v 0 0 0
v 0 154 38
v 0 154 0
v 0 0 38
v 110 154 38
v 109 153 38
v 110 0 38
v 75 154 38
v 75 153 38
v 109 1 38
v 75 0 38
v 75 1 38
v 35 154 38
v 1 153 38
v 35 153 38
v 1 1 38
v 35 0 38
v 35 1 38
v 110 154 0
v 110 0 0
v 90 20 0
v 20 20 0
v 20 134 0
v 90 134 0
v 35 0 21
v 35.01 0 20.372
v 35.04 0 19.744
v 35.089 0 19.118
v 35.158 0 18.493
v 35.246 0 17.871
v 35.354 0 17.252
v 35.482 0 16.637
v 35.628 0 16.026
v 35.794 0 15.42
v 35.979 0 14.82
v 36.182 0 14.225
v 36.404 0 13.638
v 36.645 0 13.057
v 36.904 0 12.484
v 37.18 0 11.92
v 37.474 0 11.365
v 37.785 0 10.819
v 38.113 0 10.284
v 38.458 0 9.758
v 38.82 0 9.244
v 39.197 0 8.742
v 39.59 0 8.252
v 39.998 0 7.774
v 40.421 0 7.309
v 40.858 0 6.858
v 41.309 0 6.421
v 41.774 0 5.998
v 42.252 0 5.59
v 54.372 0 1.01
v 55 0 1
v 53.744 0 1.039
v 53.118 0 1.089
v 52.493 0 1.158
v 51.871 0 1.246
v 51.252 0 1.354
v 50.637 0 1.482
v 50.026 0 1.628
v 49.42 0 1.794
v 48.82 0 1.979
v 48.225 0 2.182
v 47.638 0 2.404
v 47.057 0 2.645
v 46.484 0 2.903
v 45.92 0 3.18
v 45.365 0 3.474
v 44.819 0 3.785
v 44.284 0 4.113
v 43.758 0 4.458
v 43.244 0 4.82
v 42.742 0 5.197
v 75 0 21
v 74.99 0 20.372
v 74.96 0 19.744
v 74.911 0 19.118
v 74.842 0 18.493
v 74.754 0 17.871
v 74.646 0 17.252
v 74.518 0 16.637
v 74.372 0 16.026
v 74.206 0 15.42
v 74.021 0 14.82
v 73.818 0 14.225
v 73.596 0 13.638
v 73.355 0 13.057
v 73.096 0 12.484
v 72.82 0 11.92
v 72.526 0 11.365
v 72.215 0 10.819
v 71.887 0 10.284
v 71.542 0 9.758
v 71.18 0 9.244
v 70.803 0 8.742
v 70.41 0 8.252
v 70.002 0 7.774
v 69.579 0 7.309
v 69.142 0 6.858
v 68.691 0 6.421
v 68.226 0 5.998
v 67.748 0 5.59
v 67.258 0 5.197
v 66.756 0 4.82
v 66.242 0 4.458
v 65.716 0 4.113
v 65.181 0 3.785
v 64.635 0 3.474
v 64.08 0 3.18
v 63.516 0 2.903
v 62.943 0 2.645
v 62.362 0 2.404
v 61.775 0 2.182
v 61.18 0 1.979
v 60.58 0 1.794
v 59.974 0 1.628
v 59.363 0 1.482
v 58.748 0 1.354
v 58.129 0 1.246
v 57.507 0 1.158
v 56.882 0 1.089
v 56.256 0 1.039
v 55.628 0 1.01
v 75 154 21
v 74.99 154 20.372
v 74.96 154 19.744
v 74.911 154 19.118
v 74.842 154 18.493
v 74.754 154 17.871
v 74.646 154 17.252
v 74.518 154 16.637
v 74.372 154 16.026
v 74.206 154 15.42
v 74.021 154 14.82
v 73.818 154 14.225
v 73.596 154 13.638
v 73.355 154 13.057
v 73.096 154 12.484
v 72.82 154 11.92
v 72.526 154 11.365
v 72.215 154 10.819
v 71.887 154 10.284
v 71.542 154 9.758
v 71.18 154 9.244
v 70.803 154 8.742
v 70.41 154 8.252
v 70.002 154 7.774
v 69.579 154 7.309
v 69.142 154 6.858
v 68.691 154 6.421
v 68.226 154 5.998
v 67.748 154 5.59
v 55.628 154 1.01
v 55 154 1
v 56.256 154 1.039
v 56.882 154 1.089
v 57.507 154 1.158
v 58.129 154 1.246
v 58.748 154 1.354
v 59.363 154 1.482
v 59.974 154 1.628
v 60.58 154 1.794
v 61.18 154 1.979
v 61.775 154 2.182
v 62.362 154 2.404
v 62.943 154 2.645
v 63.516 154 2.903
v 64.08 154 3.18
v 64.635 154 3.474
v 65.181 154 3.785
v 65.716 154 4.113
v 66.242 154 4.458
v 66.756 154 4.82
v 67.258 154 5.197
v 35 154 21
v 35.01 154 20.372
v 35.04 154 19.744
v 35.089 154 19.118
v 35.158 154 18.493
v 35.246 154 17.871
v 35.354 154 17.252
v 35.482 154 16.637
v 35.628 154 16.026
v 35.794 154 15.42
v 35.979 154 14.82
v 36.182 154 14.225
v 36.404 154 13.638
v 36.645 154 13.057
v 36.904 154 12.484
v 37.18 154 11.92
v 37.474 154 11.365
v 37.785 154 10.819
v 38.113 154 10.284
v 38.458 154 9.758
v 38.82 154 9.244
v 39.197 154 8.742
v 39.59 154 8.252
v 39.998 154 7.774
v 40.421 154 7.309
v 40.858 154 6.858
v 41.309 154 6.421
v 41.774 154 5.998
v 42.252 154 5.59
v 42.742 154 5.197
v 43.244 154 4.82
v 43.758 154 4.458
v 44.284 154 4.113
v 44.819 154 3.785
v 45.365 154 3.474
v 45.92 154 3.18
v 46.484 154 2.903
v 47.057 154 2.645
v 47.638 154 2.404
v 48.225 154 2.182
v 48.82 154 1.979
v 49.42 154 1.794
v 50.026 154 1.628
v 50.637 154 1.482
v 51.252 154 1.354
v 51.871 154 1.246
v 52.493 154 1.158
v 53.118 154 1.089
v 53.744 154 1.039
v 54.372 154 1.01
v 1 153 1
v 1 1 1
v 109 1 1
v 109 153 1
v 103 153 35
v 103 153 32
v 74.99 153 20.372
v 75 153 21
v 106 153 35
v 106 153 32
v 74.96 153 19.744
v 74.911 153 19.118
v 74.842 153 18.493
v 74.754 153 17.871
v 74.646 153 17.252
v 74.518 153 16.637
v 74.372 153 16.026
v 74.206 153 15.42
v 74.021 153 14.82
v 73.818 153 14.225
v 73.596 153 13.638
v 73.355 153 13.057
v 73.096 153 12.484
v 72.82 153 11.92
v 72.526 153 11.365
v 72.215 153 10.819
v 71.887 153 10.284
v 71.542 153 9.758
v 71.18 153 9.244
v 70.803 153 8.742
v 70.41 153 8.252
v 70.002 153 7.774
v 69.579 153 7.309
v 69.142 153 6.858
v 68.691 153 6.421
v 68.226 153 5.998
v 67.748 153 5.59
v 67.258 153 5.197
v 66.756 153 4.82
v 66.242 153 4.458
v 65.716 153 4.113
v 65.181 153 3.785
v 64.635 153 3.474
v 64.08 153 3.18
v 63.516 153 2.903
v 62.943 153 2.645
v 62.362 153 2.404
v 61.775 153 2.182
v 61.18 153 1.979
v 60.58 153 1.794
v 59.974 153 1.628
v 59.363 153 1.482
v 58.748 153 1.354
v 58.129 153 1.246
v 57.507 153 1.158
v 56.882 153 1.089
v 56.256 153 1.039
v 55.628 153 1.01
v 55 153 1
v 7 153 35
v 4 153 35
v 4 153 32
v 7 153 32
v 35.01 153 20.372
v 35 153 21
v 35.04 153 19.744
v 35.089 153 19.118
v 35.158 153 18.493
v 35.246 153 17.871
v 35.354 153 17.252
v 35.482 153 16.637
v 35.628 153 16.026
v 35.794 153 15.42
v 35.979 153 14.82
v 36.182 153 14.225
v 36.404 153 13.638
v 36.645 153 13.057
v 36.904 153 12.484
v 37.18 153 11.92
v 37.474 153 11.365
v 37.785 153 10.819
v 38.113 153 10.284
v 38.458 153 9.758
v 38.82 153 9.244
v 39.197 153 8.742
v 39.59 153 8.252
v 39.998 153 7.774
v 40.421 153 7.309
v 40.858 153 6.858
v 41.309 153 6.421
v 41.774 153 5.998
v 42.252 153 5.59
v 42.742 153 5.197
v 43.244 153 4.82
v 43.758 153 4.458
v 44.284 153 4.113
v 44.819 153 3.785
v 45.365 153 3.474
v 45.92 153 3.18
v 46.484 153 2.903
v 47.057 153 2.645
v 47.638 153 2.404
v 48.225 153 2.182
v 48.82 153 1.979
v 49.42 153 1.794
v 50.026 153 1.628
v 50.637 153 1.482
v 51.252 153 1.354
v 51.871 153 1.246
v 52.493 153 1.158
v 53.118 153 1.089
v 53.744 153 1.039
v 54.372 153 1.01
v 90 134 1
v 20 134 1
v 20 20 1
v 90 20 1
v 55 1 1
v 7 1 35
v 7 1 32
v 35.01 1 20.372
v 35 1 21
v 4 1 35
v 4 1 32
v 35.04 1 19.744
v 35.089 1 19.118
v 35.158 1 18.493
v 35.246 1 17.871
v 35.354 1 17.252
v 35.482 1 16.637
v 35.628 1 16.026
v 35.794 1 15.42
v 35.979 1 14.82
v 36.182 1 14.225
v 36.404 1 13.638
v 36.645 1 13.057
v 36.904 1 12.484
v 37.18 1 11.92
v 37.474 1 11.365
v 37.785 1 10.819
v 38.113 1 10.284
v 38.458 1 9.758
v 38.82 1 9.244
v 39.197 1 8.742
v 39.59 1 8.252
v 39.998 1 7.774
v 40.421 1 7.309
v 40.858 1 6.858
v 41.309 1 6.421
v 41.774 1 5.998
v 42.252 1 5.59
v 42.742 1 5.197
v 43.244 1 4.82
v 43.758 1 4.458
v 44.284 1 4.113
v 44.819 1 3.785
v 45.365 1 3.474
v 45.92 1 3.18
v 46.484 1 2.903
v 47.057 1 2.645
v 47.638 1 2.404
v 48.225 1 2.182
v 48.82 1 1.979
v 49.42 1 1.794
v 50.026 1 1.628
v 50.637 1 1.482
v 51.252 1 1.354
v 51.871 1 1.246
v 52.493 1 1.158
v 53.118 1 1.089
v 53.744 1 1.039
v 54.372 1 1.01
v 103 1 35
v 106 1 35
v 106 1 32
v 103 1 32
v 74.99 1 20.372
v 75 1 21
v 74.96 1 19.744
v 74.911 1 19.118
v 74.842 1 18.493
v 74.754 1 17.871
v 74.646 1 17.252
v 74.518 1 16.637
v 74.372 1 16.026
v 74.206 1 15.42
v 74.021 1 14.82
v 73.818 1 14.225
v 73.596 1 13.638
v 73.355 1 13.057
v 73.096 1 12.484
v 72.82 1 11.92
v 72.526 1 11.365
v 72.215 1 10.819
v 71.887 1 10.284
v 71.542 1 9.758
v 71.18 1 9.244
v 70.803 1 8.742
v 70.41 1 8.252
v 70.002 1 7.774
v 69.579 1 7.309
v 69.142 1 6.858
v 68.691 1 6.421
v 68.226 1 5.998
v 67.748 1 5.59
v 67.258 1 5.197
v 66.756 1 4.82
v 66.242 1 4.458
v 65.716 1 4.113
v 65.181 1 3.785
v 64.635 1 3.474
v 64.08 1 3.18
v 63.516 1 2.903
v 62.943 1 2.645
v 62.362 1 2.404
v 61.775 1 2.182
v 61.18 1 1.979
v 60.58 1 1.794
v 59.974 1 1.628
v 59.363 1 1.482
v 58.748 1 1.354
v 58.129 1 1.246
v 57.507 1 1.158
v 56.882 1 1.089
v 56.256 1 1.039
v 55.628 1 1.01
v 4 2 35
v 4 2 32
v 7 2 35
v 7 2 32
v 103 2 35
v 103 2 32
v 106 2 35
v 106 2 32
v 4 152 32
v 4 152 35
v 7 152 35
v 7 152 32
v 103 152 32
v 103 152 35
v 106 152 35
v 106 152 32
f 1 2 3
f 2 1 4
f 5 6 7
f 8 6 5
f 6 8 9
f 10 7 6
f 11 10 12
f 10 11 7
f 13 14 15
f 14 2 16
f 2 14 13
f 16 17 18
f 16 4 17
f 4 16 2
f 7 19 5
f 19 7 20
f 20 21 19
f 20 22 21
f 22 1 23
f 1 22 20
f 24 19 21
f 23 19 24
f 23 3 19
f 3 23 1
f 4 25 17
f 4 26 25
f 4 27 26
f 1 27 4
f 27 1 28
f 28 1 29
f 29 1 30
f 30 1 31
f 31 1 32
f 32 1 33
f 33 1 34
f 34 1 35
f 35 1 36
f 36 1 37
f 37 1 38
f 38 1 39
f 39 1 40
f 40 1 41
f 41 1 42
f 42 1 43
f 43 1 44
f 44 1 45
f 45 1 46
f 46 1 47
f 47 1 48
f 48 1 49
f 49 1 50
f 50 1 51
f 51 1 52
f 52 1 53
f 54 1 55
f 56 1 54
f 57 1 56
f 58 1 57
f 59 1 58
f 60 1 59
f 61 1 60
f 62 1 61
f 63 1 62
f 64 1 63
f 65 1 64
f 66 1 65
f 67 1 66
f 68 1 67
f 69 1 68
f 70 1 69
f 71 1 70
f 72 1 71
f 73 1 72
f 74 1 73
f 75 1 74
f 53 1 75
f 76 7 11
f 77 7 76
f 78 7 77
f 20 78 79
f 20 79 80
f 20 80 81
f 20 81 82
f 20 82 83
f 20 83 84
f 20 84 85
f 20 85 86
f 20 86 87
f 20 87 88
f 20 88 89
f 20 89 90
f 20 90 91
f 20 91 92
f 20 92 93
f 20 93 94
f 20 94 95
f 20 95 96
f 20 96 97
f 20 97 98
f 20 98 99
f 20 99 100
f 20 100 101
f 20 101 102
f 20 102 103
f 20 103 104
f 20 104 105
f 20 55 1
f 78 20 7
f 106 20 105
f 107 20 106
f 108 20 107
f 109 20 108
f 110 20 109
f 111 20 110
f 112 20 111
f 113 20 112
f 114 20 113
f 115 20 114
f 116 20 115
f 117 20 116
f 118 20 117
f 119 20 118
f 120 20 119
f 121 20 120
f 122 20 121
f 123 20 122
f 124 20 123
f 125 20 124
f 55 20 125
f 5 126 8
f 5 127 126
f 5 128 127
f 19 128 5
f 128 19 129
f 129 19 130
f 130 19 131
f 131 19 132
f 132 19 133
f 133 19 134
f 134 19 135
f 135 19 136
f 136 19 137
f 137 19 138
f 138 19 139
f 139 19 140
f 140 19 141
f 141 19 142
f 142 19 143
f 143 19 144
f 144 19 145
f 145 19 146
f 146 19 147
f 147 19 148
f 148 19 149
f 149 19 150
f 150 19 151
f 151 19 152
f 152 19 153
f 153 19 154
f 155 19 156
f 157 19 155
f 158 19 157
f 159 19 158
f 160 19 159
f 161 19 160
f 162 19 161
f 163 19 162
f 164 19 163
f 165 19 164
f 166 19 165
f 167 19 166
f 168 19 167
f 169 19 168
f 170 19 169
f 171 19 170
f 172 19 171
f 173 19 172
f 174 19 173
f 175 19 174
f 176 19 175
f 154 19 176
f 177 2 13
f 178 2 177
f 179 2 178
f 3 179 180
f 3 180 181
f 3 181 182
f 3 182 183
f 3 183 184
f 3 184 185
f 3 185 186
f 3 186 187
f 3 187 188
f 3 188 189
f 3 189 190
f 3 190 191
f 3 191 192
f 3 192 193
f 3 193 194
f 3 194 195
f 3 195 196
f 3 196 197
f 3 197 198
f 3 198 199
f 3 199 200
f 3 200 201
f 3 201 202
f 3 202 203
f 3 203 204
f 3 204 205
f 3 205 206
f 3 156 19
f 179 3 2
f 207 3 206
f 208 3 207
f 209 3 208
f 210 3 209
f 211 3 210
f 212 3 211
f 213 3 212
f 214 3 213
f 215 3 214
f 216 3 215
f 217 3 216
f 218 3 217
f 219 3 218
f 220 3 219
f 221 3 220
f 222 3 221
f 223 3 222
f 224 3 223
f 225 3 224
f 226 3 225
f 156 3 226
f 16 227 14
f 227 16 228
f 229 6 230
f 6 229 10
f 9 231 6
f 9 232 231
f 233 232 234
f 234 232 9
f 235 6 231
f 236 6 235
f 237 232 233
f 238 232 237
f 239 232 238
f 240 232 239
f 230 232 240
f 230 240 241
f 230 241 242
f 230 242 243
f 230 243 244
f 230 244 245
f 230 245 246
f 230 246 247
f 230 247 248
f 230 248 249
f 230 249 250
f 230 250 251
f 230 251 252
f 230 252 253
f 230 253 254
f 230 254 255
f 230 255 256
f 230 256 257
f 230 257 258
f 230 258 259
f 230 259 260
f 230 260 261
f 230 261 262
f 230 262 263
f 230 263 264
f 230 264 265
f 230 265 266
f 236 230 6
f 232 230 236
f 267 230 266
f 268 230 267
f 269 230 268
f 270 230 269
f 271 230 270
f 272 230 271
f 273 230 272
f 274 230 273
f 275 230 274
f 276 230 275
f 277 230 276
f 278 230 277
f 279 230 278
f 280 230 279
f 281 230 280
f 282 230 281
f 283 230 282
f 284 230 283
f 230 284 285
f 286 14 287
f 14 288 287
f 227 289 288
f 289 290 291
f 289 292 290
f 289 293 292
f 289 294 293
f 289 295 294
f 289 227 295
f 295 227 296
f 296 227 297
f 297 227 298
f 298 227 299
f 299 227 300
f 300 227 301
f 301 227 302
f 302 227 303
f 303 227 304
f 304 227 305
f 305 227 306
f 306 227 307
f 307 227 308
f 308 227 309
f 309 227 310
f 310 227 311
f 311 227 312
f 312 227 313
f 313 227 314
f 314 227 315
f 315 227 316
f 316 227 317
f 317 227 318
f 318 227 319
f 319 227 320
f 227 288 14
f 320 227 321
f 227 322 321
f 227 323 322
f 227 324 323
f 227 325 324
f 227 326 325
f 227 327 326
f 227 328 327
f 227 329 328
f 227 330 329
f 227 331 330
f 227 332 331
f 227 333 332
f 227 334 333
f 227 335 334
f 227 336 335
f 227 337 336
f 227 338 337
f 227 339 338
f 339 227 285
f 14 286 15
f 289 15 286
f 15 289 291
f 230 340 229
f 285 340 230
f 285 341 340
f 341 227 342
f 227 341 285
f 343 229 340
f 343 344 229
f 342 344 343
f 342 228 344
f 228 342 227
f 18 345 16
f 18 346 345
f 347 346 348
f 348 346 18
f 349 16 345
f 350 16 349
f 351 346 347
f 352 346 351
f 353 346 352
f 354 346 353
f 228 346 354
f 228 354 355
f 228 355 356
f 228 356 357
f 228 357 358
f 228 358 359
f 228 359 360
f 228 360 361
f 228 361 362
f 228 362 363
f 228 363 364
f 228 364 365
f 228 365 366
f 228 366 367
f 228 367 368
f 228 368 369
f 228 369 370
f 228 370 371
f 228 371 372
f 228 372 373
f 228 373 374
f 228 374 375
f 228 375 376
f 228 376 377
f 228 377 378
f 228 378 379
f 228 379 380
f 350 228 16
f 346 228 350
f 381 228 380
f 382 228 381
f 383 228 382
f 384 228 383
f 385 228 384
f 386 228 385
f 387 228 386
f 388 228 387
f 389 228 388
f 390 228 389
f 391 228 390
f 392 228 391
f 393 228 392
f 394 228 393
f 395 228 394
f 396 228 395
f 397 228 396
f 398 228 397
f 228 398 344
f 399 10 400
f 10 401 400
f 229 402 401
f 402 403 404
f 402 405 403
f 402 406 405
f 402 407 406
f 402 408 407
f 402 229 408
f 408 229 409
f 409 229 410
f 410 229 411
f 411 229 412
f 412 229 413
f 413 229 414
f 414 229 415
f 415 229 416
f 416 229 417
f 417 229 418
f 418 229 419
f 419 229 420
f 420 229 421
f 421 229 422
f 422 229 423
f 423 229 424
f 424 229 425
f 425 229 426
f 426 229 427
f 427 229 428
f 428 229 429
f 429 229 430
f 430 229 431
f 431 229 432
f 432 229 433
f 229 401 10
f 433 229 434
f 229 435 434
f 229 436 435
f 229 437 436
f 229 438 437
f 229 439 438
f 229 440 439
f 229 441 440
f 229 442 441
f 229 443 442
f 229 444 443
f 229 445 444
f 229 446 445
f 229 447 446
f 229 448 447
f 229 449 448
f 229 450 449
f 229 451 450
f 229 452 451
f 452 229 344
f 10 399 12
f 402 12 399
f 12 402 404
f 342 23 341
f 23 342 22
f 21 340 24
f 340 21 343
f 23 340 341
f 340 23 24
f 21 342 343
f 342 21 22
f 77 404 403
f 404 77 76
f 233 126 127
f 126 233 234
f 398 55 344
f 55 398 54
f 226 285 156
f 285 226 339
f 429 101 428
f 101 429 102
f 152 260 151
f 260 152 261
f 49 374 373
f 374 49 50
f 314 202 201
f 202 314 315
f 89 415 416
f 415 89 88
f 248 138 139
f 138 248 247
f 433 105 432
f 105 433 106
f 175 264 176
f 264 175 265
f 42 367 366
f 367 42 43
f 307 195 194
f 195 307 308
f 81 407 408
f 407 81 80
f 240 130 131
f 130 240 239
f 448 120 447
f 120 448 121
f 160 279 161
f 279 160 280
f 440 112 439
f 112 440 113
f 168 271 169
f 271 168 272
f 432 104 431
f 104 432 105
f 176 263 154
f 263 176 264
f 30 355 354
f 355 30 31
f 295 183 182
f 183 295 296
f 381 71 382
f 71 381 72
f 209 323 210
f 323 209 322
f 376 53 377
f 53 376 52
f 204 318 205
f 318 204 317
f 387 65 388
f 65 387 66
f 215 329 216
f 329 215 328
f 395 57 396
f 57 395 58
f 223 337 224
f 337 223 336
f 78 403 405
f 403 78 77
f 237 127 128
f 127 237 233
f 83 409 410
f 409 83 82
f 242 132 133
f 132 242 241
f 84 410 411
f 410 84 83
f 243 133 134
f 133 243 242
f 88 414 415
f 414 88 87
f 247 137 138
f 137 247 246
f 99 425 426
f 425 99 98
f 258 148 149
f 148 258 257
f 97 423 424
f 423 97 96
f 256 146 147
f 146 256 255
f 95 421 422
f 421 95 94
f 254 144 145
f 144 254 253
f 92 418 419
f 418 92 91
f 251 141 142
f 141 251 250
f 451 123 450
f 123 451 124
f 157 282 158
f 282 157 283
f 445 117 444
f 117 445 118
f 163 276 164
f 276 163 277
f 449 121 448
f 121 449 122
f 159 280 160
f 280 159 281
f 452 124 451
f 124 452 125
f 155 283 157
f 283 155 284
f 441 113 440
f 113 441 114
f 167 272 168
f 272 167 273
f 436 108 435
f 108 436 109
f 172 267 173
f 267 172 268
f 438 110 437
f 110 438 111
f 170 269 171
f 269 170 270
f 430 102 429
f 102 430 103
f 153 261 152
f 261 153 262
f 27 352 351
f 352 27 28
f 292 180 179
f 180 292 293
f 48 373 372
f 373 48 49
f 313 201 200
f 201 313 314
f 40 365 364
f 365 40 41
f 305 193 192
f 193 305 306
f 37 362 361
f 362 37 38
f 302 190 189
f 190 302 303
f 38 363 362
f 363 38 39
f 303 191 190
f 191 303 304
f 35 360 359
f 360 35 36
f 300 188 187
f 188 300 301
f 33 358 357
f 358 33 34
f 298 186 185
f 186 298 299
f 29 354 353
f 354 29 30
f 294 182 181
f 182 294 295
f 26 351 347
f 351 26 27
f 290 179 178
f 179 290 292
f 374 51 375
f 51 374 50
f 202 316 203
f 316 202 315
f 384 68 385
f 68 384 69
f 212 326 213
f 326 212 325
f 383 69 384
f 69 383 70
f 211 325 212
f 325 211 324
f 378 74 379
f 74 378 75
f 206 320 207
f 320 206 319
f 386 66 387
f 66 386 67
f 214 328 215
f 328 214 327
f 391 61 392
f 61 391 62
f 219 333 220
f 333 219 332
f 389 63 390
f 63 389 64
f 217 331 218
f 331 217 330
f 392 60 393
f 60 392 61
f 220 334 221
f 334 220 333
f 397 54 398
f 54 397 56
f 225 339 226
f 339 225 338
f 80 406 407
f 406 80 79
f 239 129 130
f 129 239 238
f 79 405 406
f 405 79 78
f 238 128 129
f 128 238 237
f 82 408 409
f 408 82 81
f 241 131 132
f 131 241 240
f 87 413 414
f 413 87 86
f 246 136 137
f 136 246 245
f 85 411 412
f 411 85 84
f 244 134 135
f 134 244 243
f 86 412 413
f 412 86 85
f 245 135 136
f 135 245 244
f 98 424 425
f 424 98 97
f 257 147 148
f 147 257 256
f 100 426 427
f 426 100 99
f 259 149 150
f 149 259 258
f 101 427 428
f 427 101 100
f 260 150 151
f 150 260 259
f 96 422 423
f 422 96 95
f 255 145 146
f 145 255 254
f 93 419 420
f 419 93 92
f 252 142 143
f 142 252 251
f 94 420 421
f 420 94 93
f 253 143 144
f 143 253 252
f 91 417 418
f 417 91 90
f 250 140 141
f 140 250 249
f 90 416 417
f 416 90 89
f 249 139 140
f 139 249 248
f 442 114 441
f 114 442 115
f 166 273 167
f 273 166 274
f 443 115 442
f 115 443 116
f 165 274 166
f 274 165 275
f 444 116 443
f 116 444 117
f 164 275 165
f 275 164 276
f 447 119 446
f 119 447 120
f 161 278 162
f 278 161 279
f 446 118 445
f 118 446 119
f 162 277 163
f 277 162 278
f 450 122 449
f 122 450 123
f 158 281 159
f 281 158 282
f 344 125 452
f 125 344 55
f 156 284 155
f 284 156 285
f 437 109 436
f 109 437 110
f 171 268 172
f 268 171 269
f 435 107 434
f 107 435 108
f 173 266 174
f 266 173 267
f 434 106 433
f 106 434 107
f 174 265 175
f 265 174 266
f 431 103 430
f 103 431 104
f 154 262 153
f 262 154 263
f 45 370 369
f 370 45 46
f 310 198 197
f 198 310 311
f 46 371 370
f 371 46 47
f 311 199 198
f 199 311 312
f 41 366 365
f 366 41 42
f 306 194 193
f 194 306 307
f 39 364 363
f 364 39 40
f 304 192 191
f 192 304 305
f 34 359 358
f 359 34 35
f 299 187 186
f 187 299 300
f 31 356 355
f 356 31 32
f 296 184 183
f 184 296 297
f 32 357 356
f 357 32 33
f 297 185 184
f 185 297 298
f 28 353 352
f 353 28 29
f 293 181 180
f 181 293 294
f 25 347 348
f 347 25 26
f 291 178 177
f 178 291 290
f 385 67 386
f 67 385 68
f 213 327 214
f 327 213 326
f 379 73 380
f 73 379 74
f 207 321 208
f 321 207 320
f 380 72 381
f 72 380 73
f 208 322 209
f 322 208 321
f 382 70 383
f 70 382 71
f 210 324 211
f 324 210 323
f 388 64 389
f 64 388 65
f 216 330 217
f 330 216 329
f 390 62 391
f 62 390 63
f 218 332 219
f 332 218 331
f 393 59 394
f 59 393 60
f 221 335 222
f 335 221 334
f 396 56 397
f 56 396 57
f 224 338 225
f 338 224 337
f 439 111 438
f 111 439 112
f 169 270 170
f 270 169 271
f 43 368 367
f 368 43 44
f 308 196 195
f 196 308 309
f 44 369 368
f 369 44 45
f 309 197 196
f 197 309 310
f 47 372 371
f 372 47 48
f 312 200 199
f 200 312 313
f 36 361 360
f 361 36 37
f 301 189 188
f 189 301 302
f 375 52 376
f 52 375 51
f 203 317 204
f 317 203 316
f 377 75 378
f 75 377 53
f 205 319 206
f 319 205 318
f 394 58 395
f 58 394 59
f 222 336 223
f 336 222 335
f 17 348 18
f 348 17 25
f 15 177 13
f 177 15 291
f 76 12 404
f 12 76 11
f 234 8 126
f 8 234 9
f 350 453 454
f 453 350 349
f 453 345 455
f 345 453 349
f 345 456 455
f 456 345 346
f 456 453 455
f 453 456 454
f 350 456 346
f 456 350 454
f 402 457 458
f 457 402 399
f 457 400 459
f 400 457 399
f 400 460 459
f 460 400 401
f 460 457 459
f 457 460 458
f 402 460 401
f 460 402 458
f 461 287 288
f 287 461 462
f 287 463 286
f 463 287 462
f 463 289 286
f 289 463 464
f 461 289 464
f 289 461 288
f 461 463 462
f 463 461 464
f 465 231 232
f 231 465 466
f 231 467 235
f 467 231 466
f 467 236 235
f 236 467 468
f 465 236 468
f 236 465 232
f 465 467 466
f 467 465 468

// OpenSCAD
$fn=200;

THICK = 1;

LARGE_CARD_L = 147;
LARGE_CARD_W = 103;
LARGE_CARD_STACK = 15;

SMALL_CARD_L = 68;
SMALL_CARD_W = 45;
SMALL_CARD_STACK = 25;

STUMP = 2;

BOX_W = LARGE_CARD_W + (THICK * 2) + 5;
BOX_L = LARGE_CARD_L + (THICK * 2) + 5;
BOX_H = LARGE_CARD_STACK + SMALL_CARD_STACK + THICK + STUMP - 5;

SMALL_X = (BOX_W / 2) - (SMALL_CARD_L / 2);

// cube(size = [
//     BOX_W + (THICK * 4),
//     BOX_L + (THICK * 4), 
//     THICK]);

MARGIN = 20;

difference() {
    cube(size = [
        BOX_W,
        BOX_L, 
        BOX_H]);

    translate([
        THICK, 
        THICK, 
        THICK]) {
            
        cube(size = [
            BOX_W - (THICK * 2),
            BOX_L - (THICK * 2),
            BOX_H]);
    }

    translate([
        MARGIN,
        MARGIN,
        -1]) {

        cube(size = [
            BOX_W - (MARGIN * 2),
            BOX_L - (MARGIN * 2),
            10]);
    }

    translate([
        (BOX_W / 2),
        -1,
        21]) {

        rotate([270, 0, 0]) {
            cylinder(
                h = 1000,
                r = 20);
        }
    }

    translate([
        (BOX_W / 2) - 20, 
        -1, 
        21]) {
            
        cube(size = [
            40,
            250,
            80]);
    }
}

    lock(4, 0);
    lock(103, 0);

    lock(4, 152);
    lock(103, 152);

module lock(x, y) {
    translate([x, y, BOX_H - 6])
        cube(size = [3, 2, 3]);
}
